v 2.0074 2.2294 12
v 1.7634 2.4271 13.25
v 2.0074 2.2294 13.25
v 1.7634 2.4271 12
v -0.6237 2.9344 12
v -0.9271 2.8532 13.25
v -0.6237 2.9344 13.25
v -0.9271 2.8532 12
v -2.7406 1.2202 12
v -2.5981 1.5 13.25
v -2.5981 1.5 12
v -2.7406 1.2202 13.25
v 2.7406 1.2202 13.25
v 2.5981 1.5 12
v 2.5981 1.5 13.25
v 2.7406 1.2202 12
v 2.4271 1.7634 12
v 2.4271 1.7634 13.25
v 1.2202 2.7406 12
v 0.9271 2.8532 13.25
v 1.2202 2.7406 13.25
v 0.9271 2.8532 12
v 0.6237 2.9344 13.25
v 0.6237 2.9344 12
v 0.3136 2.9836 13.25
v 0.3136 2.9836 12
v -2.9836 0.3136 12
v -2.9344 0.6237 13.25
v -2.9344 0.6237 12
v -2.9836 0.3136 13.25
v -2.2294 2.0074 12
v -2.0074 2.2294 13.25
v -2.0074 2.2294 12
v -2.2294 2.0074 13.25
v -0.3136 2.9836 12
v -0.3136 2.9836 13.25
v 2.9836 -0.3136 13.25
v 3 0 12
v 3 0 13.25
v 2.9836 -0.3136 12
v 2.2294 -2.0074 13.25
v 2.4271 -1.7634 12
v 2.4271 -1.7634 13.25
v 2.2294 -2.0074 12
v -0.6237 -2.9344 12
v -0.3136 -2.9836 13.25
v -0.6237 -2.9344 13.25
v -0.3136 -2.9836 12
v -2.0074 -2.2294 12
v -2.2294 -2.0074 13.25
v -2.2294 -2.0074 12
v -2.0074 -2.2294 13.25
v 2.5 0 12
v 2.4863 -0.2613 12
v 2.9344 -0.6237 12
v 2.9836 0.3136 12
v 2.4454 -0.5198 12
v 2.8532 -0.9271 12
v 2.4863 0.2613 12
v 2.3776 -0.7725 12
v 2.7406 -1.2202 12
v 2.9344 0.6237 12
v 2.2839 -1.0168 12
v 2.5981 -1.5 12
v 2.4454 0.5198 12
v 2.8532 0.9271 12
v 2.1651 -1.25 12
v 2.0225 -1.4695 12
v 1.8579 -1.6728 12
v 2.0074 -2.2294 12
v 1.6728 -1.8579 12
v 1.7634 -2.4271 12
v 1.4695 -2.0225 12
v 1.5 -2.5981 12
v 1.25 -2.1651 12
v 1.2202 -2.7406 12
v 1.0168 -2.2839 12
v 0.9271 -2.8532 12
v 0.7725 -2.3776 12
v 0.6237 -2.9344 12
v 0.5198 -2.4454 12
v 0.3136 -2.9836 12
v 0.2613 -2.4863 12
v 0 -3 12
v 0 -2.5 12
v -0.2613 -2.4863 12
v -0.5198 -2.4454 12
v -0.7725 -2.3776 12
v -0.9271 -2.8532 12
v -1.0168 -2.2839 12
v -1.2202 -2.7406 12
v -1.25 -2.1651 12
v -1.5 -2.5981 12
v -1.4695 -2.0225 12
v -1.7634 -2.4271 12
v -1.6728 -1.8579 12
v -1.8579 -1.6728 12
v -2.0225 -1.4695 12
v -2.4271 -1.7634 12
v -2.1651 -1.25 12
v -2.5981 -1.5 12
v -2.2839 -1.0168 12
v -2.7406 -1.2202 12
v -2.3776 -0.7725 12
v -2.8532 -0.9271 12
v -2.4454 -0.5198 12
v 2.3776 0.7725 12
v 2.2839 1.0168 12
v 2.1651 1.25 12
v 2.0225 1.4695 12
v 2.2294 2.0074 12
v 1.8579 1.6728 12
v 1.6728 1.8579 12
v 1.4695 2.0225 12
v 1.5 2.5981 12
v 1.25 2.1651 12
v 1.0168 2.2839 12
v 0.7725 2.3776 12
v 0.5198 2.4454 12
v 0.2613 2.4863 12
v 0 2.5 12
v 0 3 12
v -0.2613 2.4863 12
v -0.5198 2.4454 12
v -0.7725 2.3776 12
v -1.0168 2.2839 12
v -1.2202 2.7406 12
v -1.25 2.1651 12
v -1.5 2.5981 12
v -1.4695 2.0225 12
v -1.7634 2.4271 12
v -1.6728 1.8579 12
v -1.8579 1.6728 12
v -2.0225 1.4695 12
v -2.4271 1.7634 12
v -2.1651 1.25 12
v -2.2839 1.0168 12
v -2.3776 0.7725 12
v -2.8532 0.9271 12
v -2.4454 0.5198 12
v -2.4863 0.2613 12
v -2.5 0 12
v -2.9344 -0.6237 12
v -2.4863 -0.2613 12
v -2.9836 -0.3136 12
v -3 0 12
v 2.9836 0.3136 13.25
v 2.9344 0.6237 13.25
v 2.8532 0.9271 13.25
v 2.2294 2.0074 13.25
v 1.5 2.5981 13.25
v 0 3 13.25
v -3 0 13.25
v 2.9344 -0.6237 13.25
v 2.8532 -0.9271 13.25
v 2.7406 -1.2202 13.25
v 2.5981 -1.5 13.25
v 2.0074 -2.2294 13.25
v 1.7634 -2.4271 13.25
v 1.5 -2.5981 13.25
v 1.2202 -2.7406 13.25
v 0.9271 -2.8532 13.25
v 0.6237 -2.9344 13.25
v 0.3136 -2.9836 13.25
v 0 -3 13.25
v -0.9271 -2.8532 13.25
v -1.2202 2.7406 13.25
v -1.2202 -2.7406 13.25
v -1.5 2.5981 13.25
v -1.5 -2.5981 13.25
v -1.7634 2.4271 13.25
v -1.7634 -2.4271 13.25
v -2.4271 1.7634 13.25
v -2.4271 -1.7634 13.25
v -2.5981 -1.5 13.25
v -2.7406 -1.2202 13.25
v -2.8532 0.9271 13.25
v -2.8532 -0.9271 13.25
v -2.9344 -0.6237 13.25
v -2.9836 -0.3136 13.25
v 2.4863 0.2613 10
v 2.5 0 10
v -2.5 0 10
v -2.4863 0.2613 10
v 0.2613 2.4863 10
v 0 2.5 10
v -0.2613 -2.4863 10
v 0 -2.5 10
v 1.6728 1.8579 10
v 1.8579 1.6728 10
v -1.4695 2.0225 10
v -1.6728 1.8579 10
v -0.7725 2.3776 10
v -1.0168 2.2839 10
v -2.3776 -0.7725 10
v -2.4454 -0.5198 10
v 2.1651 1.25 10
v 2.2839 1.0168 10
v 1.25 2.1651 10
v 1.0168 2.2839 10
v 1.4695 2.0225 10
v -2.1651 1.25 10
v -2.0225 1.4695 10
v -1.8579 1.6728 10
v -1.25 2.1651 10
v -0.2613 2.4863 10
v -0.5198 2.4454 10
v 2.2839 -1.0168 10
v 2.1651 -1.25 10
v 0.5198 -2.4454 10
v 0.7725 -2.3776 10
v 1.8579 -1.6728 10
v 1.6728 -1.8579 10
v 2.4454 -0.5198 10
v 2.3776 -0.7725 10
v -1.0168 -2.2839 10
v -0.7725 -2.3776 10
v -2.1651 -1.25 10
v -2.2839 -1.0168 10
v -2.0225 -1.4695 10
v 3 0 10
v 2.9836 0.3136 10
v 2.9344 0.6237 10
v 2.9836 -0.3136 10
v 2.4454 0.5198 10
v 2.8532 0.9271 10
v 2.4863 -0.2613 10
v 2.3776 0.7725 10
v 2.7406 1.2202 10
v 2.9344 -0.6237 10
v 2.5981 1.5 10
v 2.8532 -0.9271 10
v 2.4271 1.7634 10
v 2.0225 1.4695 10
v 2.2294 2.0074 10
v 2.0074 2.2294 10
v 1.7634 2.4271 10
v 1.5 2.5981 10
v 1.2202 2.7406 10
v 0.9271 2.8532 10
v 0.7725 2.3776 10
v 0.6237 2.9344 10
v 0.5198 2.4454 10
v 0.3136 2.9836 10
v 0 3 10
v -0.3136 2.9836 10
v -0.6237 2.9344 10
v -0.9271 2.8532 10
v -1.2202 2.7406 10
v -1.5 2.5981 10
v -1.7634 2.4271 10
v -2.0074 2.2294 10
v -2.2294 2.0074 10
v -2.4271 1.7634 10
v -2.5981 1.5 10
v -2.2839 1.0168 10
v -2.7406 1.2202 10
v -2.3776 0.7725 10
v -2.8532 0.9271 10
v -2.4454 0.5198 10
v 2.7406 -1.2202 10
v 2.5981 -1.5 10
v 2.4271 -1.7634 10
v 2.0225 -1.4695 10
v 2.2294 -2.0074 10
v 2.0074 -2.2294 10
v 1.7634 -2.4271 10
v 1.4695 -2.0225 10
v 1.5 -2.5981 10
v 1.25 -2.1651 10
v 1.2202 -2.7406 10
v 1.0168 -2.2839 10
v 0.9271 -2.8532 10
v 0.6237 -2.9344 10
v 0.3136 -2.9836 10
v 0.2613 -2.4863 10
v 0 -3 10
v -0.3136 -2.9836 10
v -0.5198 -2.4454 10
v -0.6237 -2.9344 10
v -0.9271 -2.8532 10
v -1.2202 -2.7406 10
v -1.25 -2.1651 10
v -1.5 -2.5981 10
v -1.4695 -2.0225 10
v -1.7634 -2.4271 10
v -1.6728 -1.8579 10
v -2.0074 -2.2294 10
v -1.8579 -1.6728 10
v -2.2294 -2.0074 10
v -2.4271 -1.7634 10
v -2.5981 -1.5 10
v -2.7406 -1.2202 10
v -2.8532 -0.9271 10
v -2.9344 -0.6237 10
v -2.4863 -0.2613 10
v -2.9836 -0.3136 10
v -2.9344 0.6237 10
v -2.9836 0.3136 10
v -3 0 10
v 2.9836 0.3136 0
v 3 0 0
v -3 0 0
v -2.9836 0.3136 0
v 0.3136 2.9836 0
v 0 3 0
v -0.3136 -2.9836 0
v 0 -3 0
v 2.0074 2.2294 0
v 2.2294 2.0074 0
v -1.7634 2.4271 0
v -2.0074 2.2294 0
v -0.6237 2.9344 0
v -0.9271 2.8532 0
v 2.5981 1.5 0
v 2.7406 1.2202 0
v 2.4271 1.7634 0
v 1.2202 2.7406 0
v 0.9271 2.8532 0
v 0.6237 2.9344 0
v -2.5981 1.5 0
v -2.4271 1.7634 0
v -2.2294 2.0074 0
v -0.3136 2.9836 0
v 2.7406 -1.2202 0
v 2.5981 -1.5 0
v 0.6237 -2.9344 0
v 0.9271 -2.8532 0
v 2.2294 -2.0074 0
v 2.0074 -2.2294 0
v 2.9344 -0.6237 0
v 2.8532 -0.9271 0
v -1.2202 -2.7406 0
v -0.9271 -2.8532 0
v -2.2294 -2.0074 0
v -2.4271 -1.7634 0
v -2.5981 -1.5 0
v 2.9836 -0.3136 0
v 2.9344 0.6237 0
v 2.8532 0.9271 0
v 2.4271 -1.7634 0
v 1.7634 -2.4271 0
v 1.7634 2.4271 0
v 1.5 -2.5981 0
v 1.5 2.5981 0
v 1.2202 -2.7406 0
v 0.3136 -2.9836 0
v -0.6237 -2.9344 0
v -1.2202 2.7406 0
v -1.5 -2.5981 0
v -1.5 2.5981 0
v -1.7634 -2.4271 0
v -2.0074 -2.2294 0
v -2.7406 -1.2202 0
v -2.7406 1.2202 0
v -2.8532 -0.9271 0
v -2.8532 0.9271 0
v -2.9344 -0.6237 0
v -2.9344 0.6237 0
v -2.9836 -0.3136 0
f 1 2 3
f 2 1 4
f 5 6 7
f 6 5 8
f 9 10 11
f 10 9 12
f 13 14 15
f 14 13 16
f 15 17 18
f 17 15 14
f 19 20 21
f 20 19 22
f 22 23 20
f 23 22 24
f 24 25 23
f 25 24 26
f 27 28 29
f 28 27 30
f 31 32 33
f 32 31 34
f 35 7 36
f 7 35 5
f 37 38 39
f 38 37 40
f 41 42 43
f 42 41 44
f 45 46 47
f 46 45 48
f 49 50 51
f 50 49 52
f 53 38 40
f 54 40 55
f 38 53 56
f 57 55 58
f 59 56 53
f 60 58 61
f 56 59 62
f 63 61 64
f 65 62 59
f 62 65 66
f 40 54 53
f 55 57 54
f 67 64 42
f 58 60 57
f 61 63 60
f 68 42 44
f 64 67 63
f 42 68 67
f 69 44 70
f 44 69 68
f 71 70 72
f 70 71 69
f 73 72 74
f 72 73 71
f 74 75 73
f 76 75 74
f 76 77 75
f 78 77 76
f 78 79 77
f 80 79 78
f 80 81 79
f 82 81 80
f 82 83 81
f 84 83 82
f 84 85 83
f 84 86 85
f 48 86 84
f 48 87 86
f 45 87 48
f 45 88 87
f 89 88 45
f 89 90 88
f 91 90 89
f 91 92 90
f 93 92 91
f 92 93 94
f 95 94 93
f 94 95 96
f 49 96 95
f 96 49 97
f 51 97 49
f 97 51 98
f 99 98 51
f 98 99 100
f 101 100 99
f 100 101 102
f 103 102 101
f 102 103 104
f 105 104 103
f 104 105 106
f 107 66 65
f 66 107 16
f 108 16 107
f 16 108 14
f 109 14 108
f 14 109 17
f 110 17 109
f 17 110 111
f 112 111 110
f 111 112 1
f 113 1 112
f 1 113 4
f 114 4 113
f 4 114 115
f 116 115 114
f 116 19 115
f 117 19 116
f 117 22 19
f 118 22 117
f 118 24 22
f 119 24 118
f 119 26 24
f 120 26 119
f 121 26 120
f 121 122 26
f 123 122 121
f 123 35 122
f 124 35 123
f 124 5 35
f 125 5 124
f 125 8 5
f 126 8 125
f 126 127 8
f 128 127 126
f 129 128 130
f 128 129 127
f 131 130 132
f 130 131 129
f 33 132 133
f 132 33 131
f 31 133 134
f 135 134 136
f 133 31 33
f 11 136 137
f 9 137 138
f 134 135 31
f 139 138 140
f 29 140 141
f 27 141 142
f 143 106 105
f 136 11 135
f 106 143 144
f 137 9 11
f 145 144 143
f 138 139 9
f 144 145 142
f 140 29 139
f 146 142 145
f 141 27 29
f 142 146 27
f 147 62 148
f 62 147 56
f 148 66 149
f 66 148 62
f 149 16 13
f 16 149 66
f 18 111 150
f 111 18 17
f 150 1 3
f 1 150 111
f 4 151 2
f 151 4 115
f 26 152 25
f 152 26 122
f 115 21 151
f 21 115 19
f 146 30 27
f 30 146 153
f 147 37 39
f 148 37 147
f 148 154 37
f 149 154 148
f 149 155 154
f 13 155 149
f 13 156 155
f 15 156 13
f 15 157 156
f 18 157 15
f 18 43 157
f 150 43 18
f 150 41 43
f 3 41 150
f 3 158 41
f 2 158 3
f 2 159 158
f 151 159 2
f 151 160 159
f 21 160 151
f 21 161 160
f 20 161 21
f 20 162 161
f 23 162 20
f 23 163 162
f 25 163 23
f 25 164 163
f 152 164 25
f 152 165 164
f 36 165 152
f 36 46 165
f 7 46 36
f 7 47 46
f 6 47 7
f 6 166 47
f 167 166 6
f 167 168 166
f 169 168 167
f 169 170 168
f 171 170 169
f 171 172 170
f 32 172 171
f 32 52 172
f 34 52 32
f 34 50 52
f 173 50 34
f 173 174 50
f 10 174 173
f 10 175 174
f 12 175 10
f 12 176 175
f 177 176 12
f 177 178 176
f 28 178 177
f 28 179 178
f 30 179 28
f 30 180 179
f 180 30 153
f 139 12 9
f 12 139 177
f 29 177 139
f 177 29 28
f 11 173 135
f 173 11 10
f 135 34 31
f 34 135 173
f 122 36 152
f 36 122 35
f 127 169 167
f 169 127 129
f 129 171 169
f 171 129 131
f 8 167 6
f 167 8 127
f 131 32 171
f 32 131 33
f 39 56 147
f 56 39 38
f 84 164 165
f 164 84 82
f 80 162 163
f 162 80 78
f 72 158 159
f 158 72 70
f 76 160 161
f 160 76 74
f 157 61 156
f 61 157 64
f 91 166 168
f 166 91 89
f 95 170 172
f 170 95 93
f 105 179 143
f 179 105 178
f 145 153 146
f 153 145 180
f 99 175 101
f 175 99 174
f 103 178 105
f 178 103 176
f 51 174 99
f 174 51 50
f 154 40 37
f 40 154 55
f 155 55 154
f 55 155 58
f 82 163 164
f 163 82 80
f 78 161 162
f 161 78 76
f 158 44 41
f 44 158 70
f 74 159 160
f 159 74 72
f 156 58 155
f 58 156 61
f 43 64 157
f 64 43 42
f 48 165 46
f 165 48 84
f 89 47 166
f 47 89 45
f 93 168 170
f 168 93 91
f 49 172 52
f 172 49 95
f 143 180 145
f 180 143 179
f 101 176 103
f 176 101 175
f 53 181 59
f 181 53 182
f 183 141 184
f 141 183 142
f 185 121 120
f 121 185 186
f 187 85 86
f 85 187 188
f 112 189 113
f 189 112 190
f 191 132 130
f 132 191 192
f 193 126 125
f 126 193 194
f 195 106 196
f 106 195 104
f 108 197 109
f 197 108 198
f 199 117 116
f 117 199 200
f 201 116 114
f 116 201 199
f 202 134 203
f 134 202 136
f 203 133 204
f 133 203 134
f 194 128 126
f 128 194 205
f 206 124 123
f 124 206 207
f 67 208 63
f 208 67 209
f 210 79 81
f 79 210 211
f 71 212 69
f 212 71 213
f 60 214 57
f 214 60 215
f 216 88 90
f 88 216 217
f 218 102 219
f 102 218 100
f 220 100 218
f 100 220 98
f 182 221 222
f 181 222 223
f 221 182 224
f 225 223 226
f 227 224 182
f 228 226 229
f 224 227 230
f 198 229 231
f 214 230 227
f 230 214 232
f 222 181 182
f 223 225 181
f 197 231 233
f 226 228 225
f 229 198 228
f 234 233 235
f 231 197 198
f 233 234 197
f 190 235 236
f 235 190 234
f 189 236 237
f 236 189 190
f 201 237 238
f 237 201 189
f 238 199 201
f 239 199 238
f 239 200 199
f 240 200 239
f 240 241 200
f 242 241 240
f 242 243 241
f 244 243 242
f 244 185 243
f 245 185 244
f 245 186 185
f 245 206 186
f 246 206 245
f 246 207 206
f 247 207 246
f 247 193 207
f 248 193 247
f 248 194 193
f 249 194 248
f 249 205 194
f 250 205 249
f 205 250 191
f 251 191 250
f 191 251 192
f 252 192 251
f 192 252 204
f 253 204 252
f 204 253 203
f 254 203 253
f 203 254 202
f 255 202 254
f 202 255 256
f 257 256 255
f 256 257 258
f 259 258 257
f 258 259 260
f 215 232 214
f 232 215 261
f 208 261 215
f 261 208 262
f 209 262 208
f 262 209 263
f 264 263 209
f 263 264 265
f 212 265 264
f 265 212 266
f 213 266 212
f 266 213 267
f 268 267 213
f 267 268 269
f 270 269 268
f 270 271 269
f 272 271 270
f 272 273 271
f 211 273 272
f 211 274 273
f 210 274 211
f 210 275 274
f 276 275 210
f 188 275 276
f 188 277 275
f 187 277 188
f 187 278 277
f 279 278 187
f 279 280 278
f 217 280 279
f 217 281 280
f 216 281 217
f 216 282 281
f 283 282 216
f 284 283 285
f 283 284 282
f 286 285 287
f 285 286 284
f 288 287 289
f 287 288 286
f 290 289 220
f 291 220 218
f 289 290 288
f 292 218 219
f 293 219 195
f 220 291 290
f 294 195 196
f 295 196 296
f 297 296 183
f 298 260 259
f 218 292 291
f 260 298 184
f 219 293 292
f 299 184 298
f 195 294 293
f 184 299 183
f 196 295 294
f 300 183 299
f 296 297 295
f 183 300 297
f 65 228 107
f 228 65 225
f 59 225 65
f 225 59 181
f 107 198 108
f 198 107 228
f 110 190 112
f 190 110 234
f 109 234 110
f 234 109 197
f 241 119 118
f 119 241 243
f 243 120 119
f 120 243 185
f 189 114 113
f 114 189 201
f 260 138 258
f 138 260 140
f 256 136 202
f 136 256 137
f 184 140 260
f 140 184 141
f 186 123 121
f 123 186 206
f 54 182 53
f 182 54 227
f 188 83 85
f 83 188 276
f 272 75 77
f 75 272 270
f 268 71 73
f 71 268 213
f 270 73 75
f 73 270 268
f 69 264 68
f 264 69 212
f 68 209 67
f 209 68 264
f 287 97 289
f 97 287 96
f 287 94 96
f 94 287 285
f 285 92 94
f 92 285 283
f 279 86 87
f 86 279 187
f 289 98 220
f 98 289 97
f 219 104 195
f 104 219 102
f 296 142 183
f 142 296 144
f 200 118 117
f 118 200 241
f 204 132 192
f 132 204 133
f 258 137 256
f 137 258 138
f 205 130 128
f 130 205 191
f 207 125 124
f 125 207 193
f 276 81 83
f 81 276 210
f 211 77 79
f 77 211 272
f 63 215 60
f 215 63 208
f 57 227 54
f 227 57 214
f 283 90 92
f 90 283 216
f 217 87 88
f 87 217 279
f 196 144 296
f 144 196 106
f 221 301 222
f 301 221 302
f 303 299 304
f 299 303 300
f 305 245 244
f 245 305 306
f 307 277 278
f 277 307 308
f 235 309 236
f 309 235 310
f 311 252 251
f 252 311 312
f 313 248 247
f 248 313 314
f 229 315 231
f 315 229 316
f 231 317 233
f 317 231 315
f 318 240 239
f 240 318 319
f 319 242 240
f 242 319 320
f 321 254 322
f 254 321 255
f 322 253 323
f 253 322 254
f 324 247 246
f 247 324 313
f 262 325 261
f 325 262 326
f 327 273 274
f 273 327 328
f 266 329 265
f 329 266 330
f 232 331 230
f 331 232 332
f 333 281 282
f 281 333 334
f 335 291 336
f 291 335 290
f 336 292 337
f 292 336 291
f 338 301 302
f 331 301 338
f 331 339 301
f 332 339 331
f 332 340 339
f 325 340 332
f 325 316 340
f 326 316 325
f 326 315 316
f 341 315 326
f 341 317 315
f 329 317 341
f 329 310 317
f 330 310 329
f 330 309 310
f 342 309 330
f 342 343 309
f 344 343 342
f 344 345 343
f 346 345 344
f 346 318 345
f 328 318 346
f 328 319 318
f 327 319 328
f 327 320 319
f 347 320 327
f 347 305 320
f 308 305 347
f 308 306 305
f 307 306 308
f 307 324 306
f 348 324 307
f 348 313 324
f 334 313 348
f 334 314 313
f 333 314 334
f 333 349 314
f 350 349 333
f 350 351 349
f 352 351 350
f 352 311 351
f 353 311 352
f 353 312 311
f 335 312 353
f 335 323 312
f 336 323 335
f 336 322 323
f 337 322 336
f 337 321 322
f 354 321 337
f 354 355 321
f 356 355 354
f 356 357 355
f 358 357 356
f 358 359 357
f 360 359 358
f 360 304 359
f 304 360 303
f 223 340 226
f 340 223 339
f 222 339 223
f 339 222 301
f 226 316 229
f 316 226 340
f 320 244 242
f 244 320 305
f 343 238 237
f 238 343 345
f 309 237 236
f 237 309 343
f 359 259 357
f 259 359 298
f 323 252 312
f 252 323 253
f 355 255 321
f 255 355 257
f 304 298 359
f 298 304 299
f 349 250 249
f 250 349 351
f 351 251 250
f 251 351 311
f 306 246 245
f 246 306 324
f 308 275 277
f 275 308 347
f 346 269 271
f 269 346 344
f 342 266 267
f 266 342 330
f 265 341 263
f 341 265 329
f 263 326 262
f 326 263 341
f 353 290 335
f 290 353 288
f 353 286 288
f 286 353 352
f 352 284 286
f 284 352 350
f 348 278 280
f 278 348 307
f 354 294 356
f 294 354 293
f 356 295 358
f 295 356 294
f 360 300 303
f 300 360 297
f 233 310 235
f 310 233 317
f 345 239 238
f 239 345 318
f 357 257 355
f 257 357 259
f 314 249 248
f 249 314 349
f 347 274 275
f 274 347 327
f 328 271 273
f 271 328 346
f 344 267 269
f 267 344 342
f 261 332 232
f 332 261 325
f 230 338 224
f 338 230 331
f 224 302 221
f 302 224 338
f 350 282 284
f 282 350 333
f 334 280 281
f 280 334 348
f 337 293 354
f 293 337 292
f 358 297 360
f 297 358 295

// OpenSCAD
// What would it sound like to have a one-way Tesla valve installed in an earplug?

majorDiameter = 6;
minorDiameter = 5;
deepStaffLength = 1.25;
gapLength = 2;
exitStaffLength = 10;



majorRadius = majorDiameter/2;
minorRadius = minorDiameter/2;

$fn = 60;

translate([0,0,0]){
    rotate([0,0,0]){
        earBudMount();
    }
}


/*
/([•])\ /([•])\ /([•])\ /([•])\ /([•])\ /([•])\ /([•])\ /([•])\
\([•])/ \([•])/ \([•])/ \([•])/ \([•])/ \([•])/ \([•])/ \([•])/
*/


module earBudMount(){
    
        translate([0,0,gapLength + exitStaffLength]){
            rotate([0,0,0]){
                cylinder(deepStaffLength, majorRadius, majorRadius, center=false);
            }
        }
        translate([0,0,deepStaffLength*0 + gapLength*0 + exitStaffLength*1]){
            rotate([0,0,0]){
                cylinder(gapLength, minorRadius, minorRadius, center=false);
            }
        }
        translate([0,0,deepStaffLength*0 + gapLength*0 + exitStaffLength*0]){
            rotate([0,0,0]){
                cylinder(exitStaffLength, majorRadius, majorRadius, center=false);
            }
        }
}
